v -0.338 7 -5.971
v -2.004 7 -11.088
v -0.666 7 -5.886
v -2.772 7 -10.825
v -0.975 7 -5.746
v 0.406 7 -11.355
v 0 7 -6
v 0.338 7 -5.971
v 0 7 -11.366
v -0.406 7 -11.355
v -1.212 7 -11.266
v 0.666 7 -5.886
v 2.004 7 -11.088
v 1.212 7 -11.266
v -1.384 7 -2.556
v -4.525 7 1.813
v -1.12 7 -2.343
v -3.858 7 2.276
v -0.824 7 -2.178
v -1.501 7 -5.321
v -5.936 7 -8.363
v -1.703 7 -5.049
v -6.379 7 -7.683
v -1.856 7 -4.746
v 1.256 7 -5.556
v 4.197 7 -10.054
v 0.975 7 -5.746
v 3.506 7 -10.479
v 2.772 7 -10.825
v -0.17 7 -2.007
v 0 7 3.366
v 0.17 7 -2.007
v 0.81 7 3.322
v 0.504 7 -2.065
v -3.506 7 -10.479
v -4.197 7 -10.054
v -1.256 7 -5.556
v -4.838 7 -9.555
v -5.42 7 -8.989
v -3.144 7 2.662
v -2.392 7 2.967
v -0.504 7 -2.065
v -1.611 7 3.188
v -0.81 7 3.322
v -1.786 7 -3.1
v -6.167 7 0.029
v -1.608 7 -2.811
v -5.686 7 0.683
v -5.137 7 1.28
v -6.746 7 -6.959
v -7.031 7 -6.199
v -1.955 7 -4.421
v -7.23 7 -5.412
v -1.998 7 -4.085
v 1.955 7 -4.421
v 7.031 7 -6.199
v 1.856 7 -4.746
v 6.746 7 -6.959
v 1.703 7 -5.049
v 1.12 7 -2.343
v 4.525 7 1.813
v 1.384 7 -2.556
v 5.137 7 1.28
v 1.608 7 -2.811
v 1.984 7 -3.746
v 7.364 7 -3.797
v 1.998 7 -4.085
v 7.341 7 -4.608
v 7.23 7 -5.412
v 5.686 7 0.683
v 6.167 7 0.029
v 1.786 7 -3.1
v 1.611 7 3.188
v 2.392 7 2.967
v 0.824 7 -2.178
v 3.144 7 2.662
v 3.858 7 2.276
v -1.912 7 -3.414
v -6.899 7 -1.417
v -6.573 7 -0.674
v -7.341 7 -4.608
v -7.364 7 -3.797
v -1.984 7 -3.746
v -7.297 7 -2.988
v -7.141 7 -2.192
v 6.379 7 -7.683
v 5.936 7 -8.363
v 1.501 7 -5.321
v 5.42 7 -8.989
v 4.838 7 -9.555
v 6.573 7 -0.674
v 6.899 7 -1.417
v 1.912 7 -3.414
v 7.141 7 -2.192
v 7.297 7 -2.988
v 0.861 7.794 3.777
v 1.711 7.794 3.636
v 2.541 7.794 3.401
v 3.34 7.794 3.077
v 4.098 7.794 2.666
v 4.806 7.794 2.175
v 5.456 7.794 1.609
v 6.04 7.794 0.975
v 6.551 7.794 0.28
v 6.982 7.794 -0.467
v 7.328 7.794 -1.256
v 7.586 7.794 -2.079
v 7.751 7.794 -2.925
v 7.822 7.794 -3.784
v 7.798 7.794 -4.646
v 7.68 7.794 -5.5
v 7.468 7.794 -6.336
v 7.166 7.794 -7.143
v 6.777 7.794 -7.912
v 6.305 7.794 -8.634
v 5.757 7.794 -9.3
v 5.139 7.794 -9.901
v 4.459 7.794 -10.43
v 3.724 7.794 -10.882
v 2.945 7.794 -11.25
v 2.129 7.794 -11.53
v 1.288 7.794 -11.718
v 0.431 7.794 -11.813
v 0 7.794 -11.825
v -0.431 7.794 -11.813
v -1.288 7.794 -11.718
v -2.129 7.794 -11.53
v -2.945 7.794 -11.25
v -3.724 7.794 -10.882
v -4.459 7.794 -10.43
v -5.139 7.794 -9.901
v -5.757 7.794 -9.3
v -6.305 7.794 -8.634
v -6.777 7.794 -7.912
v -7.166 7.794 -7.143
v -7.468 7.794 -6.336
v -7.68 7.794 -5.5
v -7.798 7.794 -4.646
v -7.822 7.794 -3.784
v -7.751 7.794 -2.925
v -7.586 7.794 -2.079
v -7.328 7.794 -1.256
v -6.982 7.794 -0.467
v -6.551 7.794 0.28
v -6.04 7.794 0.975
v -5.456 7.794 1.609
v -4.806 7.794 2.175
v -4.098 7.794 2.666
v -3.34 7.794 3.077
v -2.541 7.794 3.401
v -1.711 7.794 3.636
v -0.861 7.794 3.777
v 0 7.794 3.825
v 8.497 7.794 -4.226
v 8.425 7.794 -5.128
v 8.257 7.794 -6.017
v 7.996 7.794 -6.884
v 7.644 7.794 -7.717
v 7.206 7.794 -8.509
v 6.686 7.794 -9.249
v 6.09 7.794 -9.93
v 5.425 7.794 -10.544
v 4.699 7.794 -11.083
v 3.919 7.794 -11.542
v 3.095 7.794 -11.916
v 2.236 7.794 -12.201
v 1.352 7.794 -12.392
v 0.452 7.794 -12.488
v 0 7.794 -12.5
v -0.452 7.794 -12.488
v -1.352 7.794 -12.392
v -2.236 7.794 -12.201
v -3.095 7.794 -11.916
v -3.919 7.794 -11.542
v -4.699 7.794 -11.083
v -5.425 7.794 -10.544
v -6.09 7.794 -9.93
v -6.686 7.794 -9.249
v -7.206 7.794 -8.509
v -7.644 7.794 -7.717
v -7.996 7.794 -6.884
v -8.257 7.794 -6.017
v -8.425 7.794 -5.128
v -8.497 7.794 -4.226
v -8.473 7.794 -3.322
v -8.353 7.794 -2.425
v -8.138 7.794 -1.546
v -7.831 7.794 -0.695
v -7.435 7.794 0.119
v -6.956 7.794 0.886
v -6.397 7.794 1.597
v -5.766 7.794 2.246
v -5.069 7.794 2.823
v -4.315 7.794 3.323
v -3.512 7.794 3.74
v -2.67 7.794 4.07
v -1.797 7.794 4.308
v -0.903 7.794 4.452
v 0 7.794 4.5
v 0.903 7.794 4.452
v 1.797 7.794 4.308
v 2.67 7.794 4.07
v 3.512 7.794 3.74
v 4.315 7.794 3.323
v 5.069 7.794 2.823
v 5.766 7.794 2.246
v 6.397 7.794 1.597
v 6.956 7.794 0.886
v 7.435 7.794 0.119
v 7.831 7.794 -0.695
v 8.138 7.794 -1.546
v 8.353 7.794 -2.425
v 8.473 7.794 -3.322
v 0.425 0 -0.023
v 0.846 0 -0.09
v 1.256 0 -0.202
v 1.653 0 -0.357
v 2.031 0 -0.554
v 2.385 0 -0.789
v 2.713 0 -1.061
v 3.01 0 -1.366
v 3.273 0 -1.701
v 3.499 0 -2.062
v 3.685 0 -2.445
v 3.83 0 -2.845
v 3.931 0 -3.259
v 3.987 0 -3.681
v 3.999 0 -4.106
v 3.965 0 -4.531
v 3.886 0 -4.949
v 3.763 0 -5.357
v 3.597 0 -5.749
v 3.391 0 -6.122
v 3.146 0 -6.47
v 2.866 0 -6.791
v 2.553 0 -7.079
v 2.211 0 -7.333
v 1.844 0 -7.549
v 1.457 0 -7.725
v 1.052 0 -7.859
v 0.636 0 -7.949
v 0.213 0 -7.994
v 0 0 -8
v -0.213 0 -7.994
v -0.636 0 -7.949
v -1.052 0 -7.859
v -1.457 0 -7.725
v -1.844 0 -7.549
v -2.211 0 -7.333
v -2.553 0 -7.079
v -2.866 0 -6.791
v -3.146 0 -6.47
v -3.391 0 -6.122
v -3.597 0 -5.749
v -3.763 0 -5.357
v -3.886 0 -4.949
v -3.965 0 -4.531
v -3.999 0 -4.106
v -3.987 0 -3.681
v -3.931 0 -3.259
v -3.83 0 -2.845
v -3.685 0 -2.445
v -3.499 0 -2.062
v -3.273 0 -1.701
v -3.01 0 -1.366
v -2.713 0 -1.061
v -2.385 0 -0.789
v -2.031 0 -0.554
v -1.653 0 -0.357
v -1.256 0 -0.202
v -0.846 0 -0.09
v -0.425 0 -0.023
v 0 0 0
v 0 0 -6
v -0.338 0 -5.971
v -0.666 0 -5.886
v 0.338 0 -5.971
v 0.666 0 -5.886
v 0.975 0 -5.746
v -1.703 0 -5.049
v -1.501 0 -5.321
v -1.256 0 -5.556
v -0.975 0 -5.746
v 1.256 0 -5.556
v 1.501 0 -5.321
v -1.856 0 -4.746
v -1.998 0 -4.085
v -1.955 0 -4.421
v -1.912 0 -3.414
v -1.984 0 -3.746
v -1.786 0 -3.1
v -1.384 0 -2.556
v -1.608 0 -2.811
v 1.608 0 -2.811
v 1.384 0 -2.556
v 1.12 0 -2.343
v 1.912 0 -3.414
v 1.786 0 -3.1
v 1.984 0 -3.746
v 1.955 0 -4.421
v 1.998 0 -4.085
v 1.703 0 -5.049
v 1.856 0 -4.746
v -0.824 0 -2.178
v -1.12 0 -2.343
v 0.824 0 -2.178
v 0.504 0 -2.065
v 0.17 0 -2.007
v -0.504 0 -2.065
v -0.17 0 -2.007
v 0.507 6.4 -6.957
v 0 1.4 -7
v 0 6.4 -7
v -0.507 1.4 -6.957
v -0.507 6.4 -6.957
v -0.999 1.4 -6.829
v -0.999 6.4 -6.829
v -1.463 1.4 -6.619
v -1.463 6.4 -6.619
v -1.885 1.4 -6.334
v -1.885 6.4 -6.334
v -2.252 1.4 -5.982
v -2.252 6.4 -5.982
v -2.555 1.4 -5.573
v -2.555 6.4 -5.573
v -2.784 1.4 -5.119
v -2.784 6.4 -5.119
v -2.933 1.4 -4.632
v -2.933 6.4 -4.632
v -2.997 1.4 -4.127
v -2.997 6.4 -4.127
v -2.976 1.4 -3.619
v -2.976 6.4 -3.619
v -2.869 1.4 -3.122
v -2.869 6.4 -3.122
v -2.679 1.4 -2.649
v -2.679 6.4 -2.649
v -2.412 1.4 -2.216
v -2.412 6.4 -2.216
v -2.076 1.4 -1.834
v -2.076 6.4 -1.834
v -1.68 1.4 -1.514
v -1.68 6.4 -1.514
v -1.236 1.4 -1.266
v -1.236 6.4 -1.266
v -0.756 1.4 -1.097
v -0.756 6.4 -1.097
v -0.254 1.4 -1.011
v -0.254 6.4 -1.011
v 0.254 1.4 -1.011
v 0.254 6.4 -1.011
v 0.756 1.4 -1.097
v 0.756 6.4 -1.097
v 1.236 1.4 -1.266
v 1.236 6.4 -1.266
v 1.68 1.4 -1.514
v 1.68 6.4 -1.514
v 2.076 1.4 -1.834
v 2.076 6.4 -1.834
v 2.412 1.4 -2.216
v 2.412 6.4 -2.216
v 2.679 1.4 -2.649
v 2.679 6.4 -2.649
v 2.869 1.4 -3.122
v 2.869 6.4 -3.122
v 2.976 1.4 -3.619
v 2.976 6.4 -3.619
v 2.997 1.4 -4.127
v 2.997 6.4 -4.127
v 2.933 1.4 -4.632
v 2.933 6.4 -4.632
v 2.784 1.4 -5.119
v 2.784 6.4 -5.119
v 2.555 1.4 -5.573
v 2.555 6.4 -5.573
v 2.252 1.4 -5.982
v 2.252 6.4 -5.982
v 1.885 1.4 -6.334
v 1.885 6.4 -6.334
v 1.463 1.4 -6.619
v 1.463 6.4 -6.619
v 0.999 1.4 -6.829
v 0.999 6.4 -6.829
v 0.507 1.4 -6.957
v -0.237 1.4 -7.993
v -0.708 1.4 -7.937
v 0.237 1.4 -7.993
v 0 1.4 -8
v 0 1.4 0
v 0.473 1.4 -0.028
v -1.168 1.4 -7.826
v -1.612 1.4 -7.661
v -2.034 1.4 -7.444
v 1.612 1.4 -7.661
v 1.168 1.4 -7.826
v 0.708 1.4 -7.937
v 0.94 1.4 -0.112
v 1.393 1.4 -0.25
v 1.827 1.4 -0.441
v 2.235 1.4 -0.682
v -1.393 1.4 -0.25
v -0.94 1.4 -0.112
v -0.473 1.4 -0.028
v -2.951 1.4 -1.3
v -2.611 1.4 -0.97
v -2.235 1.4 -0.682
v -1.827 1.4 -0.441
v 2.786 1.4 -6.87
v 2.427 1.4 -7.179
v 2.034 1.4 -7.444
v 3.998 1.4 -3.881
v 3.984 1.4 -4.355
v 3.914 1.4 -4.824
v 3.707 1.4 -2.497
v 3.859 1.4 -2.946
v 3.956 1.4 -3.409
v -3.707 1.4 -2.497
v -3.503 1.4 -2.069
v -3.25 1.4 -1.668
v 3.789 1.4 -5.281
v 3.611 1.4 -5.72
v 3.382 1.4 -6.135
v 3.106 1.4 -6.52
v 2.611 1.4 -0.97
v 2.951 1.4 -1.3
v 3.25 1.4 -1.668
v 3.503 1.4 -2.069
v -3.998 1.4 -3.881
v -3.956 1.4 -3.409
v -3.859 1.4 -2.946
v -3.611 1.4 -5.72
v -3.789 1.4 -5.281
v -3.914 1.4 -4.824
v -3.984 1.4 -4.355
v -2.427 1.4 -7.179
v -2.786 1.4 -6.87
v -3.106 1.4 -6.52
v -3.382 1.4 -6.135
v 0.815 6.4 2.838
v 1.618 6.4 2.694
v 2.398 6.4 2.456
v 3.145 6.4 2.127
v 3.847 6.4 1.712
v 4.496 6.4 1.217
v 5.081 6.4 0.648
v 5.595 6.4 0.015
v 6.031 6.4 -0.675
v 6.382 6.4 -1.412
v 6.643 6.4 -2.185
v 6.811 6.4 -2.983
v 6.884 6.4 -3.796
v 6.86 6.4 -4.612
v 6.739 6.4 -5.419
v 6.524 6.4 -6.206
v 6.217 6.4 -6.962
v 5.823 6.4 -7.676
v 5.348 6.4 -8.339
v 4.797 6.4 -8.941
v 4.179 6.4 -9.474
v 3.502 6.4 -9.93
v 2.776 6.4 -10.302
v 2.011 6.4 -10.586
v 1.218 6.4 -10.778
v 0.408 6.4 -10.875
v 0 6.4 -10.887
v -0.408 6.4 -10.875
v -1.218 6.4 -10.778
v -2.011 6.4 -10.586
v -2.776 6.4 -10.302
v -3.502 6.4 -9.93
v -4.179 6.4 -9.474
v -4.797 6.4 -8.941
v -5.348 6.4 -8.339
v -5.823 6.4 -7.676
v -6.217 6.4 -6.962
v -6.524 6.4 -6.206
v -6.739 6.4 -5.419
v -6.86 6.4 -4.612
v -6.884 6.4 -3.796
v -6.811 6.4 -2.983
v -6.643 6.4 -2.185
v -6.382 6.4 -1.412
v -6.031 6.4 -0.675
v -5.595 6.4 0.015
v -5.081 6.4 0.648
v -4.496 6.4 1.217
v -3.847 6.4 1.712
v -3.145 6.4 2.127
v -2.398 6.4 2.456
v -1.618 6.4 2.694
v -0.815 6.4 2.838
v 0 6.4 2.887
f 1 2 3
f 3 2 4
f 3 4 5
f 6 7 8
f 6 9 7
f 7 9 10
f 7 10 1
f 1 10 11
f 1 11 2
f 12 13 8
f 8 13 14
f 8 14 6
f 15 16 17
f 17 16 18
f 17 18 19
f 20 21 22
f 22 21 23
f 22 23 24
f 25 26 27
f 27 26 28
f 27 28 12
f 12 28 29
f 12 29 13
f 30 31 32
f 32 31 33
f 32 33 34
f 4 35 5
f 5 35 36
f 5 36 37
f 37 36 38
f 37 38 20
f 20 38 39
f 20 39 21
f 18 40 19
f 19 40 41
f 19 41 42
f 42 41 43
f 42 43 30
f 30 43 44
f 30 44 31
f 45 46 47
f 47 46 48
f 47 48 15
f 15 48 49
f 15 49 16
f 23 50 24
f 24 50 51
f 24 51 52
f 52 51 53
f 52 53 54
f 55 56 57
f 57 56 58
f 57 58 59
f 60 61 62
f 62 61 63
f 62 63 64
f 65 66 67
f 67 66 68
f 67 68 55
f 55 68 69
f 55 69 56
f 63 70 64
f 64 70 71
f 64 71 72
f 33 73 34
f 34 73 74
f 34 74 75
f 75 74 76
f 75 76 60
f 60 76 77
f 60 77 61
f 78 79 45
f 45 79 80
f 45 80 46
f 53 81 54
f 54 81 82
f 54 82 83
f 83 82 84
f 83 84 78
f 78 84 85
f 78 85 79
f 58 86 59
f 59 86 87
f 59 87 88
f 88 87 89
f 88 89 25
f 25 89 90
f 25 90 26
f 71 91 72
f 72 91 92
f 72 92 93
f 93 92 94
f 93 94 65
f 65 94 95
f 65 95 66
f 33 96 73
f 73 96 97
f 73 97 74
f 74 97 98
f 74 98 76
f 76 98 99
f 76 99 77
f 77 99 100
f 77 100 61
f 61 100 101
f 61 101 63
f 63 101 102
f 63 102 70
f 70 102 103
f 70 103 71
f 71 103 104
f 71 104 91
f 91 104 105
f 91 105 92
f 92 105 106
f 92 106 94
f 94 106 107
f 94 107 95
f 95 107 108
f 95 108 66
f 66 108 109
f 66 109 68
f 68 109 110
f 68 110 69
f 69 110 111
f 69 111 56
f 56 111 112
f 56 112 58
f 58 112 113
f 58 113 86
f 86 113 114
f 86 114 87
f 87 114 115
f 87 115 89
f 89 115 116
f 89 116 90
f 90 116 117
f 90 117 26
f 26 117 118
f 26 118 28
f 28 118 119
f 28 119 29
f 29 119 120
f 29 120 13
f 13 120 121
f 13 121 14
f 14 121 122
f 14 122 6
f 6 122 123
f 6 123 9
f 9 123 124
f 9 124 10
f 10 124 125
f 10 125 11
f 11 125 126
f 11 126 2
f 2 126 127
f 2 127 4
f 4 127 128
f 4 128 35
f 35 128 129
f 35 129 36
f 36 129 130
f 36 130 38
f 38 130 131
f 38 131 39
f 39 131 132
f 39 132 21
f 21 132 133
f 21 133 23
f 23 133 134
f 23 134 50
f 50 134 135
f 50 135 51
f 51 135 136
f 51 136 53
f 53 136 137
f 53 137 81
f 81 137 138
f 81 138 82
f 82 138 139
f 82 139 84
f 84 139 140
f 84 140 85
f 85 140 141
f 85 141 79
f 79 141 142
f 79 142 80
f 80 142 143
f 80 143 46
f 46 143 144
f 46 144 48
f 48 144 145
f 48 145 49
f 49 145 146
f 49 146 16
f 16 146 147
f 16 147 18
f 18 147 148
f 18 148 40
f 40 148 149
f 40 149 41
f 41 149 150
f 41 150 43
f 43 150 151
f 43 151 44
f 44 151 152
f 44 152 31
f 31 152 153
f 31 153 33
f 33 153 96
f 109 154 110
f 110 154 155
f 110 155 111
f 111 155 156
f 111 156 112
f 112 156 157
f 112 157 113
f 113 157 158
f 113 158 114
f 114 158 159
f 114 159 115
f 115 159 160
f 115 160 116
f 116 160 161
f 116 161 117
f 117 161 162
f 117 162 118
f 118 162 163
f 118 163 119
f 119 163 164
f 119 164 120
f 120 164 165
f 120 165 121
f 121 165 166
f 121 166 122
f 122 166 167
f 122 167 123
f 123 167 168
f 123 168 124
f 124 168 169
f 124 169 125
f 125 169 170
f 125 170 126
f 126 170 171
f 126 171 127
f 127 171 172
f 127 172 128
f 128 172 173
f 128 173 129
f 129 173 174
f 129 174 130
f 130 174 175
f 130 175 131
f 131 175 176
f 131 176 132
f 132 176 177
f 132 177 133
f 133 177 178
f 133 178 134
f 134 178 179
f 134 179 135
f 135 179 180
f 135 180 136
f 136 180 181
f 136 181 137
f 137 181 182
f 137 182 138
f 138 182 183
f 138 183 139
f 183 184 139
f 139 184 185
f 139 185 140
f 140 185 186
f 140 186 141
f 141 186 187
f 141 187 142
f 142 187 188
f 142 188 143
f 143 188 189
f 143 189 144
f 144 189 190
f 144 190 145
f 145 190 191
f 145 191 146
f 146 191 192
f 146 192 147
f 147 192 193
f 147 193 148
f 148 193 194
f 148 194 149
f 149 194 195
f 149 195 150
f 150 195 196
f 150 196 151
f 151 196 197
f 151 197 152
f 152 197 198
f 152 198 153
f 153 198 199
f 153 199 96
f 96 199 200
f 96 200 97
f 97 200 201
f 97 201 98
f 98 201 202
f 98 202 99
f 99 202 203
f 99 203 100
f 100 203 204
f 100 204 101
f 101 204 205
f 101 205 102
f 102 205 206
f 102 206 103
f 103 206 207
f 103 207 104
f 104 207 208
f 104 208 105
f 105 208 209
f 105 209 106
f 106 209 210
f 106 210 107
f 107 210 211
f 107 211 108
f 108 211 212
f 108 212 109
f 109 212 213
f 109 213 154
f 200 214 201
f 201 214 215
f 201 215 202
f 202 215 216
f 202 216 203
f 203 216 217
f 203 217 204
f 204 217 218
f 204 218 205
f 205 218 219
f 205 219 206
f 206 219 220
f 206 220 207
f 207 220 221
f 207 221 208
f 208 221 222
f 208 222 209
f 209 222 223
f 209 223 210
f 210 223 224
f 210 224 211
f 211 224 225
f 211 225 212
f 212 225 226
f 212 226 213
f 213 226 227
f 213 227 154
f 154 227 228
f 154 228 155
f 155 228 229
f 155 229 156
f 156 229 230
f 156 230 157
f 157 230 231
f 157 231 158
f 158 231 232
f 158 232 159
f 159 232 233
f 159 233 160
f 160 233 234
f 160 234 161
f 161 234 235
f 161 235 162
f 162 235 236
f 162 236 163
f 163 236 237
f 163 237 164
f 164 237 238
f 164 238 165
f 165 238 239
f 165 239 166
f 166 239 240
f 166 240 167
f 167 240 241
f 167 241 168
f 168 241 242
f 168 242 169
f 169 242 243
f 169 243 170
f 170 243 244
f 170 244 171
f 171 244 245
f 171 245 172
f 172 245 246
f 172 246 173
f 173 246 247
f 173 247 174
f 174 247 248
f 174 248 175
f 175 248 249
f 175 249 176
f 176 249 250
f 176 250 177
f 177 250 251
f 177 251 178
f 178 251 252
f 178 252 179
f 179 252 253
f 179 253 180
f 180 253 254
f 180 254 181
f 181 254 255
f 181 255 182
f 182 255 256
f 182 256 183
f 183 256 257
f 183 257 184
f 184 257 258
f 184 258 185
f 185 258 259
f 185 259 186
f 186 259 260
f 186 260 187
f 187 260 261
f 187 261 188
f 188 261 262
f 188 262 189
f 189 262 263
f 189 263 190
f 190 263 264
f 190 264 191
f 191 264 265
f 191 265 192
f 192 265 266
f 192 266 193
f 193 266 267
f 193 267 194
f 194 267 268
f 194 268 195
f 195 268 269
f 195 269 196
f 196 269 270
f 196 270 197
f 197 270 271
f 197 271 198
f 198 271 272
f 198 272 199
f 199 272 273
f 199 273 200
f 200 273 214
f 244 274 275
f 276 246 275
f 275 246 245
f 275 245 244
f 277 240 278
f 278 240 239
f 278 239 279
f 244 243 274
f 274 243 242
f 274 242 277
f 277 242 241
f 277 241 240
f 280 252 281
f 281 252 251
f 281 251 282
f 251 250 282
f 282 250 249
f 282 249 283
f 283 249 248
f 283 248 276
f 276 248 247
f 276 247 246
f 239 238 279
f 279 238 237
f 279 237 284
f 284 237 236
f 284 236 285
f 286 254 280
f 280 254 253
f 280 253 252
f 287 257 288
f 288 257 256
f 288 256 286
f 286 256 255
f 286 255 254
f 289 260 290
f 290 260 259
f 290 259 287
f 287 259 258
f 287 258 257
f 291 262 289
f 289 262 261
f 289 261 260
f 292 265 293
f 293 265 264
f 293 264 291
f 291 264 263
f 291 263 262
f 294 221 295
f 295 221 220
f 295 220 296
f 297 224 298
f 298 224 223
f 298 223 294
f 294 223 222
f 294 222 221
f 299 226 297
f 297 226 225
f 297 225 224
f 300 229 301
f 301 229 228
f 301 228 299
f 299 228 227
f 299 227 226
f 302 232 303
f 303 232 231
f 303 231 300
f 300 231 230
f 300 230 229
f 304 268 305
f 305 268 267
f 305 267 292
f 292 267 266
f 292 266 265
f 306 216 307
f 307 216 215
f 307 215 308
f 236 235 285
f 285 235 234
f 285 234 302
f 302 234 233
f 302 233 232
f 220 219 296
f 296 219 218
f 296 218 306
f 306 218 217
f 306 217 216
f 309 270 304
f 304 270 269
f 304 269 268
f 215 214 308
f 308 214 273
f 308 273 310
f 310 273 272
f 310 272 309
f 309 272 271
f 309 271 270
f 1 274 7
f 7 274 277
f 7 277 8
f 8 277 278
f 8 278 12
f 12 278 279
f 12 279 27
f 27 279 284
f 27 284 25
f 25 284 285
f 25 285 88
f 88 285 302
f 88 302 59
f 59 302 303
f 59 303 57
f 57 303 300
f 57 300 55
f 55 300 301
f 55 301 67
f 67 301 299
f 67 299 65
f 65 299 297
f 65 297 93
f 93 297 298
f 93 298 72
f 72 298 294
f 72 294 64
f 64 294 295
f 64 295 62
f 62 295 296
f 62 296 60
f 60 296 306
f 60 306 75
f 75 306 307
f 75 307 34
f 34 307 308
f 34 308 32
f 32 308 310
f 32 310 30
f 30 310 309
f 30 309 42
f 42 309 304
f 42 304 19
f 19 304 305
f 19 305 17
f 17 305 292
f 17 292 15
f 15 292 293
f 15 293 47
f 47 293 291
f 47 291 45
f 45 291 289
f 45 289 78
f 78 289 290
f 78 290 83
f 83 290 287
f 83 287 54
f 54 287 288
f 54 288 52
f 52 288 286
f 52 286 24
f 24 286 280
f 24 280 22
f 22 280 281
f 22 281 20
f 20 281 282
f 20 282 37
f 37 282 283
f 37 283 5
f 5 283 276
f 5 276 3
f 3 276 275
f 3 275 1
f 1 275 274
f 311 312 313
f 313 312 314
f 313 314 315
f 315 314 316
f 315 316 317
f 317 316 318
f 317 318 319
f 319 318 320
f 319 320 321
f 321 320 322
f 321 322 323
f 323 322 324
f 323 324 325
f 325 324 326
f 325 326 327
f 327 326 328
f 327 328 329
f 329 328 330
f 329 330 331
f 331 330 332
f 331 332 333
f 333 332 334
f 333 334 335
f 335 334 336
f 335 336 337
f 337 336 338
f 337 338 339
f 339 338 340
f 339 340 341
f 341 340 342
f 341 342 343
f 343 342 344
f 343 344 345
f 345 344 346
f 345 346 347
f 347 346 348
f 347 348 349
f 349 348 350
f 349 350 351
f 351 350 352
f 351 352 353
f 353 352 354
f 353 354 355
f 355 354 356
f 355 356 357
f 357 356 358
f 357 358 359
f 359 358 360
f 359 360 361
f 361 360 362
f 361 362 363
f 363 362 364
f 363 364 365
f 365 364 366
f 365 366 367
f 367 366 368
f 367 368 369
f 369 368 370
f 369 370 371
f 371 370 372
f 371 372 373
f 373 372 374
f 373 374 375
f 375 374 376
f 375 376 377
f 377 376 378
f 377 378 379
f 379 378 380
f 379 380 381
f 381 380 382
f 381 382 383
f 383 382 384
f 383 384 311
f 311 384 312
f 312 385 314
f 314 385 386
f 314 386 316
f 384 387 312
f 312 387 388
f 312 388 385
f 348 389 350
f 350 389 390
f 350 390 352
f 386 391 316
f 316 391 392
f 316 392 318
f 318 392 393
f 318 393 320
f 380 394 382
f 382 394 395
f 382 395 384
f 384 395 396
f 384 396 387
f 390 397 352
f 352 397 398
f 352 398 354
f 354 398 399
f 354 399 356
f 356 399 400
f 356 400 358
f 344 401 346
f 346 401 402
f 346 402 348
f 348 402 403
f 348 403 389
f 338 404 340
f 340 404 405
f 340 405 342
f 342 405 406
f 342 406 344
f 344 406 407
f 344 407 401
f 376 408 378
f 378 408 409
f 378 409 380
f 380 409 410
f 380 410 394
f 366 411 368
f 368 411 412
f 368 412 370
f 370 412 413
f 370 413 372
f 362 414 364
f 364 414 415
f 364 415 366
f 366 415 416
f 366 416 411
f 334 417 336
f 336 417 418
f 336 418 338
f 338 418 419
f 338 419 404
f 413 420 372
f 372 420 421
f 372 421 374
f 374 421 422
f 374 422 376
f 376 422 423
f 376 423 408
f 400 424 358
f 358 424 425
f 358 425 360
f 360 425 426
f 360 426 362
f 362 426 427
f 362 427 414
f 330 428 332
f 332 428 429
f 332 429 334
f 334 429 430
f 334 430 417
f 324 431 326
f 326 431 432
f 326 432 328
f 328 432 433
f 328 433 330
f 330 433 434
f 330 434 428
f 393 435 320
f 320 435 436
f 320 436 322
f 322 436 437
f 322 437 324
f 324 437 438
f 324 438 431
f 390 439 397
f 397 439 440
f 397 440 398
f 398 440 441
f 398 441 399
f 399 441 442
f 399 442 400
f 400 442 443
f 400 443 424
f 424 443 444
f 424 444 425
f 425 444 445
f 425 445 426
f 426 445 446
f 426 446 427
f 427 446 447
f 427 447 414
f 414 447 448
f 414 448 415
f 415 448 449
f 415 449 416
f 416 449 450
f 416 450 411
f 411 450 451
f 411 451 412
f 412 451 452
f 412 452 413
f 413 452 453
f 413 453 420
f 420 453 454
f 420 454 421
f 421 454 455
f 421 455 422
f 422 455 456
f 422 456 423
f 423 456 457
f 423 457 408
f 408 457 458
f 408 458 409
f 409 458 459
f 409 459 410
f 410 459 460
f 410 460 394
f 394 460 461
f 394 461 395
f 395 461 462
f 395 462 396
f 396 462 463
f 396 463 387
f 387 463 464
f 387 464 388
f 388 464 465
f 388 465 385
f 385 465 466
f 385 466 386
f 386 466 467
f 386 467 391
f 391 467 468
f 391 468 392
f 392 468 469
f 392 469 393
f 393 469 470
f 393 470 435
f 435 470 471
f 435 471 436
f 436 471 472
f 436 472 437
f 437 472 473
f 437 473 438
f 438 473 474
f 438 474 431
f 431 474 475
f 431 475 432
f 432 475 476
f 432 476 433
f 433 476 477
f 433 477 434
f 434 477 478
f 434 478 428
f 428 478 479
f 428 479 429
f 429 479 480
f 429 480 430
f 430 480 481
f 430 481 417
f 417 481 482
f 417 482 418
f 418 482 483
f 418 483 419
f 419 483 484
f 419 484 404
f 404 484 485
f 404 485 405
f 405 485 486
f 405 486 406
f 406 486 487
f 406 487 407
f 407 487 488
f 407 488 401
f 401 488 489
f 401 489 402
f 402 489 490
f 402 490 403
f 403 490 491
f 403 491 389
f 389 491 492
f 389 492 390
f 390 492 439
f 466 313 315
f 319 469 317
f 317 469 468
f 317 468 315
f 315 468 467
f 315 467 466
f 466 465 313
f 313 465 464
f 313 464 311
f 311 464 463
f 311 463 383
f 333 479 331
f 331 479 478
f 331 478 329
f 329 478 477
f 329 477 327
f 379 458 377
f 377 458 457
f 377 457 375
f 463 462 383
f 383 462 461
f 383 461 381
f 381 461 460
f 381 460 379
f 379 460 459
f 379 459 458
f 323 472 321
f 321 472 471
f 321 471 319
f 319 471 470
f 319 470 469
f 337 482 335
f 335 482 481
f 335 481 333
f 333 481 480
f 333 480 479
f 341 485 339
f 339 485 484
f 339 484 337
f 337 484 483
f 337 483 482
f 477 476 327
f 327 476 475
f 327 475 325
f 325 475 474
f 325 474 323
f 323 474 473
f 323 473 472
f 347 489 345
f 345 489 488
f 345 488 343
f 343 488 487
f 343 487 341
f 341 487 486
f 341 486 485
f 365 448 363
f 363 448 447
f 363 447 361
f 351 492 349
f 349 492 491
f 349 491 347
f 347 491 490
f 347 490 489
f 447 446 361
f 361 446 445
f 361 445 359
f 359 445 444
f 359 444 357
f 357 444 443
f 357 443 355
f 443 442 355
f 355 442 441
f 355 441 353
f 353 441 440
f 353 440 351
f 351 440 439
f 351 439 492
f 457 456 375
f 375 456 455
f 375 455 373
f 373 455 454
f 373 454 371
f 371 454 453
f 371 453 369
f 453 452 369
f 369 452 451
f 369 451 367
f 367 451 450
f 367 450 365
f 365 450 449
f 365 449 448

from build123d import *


with BuildPart() as part:
    # Sketch1 → Revolve2 (revolve)
    with BuildSketch(Plane(origin=(0, 0, 0), x_dir=(0, 0, -1), z_dir=(1, 0, 0))):
        Polygon((-4.5, 7.794228634), (0, 0), (2, 0), (2, 7), (-3.366397964, 7), (-3.82494608, 7.794228634), align=None)
        Polygon((1, 1.4), (0, 1.4), (-2.886751346, 6.4), (1, 6.4), align=None, mode=Mode.SUBTRACT)
    revolve(axis=Axis((0, 0, -4), (0, 1, 0)))


solid = part.part
